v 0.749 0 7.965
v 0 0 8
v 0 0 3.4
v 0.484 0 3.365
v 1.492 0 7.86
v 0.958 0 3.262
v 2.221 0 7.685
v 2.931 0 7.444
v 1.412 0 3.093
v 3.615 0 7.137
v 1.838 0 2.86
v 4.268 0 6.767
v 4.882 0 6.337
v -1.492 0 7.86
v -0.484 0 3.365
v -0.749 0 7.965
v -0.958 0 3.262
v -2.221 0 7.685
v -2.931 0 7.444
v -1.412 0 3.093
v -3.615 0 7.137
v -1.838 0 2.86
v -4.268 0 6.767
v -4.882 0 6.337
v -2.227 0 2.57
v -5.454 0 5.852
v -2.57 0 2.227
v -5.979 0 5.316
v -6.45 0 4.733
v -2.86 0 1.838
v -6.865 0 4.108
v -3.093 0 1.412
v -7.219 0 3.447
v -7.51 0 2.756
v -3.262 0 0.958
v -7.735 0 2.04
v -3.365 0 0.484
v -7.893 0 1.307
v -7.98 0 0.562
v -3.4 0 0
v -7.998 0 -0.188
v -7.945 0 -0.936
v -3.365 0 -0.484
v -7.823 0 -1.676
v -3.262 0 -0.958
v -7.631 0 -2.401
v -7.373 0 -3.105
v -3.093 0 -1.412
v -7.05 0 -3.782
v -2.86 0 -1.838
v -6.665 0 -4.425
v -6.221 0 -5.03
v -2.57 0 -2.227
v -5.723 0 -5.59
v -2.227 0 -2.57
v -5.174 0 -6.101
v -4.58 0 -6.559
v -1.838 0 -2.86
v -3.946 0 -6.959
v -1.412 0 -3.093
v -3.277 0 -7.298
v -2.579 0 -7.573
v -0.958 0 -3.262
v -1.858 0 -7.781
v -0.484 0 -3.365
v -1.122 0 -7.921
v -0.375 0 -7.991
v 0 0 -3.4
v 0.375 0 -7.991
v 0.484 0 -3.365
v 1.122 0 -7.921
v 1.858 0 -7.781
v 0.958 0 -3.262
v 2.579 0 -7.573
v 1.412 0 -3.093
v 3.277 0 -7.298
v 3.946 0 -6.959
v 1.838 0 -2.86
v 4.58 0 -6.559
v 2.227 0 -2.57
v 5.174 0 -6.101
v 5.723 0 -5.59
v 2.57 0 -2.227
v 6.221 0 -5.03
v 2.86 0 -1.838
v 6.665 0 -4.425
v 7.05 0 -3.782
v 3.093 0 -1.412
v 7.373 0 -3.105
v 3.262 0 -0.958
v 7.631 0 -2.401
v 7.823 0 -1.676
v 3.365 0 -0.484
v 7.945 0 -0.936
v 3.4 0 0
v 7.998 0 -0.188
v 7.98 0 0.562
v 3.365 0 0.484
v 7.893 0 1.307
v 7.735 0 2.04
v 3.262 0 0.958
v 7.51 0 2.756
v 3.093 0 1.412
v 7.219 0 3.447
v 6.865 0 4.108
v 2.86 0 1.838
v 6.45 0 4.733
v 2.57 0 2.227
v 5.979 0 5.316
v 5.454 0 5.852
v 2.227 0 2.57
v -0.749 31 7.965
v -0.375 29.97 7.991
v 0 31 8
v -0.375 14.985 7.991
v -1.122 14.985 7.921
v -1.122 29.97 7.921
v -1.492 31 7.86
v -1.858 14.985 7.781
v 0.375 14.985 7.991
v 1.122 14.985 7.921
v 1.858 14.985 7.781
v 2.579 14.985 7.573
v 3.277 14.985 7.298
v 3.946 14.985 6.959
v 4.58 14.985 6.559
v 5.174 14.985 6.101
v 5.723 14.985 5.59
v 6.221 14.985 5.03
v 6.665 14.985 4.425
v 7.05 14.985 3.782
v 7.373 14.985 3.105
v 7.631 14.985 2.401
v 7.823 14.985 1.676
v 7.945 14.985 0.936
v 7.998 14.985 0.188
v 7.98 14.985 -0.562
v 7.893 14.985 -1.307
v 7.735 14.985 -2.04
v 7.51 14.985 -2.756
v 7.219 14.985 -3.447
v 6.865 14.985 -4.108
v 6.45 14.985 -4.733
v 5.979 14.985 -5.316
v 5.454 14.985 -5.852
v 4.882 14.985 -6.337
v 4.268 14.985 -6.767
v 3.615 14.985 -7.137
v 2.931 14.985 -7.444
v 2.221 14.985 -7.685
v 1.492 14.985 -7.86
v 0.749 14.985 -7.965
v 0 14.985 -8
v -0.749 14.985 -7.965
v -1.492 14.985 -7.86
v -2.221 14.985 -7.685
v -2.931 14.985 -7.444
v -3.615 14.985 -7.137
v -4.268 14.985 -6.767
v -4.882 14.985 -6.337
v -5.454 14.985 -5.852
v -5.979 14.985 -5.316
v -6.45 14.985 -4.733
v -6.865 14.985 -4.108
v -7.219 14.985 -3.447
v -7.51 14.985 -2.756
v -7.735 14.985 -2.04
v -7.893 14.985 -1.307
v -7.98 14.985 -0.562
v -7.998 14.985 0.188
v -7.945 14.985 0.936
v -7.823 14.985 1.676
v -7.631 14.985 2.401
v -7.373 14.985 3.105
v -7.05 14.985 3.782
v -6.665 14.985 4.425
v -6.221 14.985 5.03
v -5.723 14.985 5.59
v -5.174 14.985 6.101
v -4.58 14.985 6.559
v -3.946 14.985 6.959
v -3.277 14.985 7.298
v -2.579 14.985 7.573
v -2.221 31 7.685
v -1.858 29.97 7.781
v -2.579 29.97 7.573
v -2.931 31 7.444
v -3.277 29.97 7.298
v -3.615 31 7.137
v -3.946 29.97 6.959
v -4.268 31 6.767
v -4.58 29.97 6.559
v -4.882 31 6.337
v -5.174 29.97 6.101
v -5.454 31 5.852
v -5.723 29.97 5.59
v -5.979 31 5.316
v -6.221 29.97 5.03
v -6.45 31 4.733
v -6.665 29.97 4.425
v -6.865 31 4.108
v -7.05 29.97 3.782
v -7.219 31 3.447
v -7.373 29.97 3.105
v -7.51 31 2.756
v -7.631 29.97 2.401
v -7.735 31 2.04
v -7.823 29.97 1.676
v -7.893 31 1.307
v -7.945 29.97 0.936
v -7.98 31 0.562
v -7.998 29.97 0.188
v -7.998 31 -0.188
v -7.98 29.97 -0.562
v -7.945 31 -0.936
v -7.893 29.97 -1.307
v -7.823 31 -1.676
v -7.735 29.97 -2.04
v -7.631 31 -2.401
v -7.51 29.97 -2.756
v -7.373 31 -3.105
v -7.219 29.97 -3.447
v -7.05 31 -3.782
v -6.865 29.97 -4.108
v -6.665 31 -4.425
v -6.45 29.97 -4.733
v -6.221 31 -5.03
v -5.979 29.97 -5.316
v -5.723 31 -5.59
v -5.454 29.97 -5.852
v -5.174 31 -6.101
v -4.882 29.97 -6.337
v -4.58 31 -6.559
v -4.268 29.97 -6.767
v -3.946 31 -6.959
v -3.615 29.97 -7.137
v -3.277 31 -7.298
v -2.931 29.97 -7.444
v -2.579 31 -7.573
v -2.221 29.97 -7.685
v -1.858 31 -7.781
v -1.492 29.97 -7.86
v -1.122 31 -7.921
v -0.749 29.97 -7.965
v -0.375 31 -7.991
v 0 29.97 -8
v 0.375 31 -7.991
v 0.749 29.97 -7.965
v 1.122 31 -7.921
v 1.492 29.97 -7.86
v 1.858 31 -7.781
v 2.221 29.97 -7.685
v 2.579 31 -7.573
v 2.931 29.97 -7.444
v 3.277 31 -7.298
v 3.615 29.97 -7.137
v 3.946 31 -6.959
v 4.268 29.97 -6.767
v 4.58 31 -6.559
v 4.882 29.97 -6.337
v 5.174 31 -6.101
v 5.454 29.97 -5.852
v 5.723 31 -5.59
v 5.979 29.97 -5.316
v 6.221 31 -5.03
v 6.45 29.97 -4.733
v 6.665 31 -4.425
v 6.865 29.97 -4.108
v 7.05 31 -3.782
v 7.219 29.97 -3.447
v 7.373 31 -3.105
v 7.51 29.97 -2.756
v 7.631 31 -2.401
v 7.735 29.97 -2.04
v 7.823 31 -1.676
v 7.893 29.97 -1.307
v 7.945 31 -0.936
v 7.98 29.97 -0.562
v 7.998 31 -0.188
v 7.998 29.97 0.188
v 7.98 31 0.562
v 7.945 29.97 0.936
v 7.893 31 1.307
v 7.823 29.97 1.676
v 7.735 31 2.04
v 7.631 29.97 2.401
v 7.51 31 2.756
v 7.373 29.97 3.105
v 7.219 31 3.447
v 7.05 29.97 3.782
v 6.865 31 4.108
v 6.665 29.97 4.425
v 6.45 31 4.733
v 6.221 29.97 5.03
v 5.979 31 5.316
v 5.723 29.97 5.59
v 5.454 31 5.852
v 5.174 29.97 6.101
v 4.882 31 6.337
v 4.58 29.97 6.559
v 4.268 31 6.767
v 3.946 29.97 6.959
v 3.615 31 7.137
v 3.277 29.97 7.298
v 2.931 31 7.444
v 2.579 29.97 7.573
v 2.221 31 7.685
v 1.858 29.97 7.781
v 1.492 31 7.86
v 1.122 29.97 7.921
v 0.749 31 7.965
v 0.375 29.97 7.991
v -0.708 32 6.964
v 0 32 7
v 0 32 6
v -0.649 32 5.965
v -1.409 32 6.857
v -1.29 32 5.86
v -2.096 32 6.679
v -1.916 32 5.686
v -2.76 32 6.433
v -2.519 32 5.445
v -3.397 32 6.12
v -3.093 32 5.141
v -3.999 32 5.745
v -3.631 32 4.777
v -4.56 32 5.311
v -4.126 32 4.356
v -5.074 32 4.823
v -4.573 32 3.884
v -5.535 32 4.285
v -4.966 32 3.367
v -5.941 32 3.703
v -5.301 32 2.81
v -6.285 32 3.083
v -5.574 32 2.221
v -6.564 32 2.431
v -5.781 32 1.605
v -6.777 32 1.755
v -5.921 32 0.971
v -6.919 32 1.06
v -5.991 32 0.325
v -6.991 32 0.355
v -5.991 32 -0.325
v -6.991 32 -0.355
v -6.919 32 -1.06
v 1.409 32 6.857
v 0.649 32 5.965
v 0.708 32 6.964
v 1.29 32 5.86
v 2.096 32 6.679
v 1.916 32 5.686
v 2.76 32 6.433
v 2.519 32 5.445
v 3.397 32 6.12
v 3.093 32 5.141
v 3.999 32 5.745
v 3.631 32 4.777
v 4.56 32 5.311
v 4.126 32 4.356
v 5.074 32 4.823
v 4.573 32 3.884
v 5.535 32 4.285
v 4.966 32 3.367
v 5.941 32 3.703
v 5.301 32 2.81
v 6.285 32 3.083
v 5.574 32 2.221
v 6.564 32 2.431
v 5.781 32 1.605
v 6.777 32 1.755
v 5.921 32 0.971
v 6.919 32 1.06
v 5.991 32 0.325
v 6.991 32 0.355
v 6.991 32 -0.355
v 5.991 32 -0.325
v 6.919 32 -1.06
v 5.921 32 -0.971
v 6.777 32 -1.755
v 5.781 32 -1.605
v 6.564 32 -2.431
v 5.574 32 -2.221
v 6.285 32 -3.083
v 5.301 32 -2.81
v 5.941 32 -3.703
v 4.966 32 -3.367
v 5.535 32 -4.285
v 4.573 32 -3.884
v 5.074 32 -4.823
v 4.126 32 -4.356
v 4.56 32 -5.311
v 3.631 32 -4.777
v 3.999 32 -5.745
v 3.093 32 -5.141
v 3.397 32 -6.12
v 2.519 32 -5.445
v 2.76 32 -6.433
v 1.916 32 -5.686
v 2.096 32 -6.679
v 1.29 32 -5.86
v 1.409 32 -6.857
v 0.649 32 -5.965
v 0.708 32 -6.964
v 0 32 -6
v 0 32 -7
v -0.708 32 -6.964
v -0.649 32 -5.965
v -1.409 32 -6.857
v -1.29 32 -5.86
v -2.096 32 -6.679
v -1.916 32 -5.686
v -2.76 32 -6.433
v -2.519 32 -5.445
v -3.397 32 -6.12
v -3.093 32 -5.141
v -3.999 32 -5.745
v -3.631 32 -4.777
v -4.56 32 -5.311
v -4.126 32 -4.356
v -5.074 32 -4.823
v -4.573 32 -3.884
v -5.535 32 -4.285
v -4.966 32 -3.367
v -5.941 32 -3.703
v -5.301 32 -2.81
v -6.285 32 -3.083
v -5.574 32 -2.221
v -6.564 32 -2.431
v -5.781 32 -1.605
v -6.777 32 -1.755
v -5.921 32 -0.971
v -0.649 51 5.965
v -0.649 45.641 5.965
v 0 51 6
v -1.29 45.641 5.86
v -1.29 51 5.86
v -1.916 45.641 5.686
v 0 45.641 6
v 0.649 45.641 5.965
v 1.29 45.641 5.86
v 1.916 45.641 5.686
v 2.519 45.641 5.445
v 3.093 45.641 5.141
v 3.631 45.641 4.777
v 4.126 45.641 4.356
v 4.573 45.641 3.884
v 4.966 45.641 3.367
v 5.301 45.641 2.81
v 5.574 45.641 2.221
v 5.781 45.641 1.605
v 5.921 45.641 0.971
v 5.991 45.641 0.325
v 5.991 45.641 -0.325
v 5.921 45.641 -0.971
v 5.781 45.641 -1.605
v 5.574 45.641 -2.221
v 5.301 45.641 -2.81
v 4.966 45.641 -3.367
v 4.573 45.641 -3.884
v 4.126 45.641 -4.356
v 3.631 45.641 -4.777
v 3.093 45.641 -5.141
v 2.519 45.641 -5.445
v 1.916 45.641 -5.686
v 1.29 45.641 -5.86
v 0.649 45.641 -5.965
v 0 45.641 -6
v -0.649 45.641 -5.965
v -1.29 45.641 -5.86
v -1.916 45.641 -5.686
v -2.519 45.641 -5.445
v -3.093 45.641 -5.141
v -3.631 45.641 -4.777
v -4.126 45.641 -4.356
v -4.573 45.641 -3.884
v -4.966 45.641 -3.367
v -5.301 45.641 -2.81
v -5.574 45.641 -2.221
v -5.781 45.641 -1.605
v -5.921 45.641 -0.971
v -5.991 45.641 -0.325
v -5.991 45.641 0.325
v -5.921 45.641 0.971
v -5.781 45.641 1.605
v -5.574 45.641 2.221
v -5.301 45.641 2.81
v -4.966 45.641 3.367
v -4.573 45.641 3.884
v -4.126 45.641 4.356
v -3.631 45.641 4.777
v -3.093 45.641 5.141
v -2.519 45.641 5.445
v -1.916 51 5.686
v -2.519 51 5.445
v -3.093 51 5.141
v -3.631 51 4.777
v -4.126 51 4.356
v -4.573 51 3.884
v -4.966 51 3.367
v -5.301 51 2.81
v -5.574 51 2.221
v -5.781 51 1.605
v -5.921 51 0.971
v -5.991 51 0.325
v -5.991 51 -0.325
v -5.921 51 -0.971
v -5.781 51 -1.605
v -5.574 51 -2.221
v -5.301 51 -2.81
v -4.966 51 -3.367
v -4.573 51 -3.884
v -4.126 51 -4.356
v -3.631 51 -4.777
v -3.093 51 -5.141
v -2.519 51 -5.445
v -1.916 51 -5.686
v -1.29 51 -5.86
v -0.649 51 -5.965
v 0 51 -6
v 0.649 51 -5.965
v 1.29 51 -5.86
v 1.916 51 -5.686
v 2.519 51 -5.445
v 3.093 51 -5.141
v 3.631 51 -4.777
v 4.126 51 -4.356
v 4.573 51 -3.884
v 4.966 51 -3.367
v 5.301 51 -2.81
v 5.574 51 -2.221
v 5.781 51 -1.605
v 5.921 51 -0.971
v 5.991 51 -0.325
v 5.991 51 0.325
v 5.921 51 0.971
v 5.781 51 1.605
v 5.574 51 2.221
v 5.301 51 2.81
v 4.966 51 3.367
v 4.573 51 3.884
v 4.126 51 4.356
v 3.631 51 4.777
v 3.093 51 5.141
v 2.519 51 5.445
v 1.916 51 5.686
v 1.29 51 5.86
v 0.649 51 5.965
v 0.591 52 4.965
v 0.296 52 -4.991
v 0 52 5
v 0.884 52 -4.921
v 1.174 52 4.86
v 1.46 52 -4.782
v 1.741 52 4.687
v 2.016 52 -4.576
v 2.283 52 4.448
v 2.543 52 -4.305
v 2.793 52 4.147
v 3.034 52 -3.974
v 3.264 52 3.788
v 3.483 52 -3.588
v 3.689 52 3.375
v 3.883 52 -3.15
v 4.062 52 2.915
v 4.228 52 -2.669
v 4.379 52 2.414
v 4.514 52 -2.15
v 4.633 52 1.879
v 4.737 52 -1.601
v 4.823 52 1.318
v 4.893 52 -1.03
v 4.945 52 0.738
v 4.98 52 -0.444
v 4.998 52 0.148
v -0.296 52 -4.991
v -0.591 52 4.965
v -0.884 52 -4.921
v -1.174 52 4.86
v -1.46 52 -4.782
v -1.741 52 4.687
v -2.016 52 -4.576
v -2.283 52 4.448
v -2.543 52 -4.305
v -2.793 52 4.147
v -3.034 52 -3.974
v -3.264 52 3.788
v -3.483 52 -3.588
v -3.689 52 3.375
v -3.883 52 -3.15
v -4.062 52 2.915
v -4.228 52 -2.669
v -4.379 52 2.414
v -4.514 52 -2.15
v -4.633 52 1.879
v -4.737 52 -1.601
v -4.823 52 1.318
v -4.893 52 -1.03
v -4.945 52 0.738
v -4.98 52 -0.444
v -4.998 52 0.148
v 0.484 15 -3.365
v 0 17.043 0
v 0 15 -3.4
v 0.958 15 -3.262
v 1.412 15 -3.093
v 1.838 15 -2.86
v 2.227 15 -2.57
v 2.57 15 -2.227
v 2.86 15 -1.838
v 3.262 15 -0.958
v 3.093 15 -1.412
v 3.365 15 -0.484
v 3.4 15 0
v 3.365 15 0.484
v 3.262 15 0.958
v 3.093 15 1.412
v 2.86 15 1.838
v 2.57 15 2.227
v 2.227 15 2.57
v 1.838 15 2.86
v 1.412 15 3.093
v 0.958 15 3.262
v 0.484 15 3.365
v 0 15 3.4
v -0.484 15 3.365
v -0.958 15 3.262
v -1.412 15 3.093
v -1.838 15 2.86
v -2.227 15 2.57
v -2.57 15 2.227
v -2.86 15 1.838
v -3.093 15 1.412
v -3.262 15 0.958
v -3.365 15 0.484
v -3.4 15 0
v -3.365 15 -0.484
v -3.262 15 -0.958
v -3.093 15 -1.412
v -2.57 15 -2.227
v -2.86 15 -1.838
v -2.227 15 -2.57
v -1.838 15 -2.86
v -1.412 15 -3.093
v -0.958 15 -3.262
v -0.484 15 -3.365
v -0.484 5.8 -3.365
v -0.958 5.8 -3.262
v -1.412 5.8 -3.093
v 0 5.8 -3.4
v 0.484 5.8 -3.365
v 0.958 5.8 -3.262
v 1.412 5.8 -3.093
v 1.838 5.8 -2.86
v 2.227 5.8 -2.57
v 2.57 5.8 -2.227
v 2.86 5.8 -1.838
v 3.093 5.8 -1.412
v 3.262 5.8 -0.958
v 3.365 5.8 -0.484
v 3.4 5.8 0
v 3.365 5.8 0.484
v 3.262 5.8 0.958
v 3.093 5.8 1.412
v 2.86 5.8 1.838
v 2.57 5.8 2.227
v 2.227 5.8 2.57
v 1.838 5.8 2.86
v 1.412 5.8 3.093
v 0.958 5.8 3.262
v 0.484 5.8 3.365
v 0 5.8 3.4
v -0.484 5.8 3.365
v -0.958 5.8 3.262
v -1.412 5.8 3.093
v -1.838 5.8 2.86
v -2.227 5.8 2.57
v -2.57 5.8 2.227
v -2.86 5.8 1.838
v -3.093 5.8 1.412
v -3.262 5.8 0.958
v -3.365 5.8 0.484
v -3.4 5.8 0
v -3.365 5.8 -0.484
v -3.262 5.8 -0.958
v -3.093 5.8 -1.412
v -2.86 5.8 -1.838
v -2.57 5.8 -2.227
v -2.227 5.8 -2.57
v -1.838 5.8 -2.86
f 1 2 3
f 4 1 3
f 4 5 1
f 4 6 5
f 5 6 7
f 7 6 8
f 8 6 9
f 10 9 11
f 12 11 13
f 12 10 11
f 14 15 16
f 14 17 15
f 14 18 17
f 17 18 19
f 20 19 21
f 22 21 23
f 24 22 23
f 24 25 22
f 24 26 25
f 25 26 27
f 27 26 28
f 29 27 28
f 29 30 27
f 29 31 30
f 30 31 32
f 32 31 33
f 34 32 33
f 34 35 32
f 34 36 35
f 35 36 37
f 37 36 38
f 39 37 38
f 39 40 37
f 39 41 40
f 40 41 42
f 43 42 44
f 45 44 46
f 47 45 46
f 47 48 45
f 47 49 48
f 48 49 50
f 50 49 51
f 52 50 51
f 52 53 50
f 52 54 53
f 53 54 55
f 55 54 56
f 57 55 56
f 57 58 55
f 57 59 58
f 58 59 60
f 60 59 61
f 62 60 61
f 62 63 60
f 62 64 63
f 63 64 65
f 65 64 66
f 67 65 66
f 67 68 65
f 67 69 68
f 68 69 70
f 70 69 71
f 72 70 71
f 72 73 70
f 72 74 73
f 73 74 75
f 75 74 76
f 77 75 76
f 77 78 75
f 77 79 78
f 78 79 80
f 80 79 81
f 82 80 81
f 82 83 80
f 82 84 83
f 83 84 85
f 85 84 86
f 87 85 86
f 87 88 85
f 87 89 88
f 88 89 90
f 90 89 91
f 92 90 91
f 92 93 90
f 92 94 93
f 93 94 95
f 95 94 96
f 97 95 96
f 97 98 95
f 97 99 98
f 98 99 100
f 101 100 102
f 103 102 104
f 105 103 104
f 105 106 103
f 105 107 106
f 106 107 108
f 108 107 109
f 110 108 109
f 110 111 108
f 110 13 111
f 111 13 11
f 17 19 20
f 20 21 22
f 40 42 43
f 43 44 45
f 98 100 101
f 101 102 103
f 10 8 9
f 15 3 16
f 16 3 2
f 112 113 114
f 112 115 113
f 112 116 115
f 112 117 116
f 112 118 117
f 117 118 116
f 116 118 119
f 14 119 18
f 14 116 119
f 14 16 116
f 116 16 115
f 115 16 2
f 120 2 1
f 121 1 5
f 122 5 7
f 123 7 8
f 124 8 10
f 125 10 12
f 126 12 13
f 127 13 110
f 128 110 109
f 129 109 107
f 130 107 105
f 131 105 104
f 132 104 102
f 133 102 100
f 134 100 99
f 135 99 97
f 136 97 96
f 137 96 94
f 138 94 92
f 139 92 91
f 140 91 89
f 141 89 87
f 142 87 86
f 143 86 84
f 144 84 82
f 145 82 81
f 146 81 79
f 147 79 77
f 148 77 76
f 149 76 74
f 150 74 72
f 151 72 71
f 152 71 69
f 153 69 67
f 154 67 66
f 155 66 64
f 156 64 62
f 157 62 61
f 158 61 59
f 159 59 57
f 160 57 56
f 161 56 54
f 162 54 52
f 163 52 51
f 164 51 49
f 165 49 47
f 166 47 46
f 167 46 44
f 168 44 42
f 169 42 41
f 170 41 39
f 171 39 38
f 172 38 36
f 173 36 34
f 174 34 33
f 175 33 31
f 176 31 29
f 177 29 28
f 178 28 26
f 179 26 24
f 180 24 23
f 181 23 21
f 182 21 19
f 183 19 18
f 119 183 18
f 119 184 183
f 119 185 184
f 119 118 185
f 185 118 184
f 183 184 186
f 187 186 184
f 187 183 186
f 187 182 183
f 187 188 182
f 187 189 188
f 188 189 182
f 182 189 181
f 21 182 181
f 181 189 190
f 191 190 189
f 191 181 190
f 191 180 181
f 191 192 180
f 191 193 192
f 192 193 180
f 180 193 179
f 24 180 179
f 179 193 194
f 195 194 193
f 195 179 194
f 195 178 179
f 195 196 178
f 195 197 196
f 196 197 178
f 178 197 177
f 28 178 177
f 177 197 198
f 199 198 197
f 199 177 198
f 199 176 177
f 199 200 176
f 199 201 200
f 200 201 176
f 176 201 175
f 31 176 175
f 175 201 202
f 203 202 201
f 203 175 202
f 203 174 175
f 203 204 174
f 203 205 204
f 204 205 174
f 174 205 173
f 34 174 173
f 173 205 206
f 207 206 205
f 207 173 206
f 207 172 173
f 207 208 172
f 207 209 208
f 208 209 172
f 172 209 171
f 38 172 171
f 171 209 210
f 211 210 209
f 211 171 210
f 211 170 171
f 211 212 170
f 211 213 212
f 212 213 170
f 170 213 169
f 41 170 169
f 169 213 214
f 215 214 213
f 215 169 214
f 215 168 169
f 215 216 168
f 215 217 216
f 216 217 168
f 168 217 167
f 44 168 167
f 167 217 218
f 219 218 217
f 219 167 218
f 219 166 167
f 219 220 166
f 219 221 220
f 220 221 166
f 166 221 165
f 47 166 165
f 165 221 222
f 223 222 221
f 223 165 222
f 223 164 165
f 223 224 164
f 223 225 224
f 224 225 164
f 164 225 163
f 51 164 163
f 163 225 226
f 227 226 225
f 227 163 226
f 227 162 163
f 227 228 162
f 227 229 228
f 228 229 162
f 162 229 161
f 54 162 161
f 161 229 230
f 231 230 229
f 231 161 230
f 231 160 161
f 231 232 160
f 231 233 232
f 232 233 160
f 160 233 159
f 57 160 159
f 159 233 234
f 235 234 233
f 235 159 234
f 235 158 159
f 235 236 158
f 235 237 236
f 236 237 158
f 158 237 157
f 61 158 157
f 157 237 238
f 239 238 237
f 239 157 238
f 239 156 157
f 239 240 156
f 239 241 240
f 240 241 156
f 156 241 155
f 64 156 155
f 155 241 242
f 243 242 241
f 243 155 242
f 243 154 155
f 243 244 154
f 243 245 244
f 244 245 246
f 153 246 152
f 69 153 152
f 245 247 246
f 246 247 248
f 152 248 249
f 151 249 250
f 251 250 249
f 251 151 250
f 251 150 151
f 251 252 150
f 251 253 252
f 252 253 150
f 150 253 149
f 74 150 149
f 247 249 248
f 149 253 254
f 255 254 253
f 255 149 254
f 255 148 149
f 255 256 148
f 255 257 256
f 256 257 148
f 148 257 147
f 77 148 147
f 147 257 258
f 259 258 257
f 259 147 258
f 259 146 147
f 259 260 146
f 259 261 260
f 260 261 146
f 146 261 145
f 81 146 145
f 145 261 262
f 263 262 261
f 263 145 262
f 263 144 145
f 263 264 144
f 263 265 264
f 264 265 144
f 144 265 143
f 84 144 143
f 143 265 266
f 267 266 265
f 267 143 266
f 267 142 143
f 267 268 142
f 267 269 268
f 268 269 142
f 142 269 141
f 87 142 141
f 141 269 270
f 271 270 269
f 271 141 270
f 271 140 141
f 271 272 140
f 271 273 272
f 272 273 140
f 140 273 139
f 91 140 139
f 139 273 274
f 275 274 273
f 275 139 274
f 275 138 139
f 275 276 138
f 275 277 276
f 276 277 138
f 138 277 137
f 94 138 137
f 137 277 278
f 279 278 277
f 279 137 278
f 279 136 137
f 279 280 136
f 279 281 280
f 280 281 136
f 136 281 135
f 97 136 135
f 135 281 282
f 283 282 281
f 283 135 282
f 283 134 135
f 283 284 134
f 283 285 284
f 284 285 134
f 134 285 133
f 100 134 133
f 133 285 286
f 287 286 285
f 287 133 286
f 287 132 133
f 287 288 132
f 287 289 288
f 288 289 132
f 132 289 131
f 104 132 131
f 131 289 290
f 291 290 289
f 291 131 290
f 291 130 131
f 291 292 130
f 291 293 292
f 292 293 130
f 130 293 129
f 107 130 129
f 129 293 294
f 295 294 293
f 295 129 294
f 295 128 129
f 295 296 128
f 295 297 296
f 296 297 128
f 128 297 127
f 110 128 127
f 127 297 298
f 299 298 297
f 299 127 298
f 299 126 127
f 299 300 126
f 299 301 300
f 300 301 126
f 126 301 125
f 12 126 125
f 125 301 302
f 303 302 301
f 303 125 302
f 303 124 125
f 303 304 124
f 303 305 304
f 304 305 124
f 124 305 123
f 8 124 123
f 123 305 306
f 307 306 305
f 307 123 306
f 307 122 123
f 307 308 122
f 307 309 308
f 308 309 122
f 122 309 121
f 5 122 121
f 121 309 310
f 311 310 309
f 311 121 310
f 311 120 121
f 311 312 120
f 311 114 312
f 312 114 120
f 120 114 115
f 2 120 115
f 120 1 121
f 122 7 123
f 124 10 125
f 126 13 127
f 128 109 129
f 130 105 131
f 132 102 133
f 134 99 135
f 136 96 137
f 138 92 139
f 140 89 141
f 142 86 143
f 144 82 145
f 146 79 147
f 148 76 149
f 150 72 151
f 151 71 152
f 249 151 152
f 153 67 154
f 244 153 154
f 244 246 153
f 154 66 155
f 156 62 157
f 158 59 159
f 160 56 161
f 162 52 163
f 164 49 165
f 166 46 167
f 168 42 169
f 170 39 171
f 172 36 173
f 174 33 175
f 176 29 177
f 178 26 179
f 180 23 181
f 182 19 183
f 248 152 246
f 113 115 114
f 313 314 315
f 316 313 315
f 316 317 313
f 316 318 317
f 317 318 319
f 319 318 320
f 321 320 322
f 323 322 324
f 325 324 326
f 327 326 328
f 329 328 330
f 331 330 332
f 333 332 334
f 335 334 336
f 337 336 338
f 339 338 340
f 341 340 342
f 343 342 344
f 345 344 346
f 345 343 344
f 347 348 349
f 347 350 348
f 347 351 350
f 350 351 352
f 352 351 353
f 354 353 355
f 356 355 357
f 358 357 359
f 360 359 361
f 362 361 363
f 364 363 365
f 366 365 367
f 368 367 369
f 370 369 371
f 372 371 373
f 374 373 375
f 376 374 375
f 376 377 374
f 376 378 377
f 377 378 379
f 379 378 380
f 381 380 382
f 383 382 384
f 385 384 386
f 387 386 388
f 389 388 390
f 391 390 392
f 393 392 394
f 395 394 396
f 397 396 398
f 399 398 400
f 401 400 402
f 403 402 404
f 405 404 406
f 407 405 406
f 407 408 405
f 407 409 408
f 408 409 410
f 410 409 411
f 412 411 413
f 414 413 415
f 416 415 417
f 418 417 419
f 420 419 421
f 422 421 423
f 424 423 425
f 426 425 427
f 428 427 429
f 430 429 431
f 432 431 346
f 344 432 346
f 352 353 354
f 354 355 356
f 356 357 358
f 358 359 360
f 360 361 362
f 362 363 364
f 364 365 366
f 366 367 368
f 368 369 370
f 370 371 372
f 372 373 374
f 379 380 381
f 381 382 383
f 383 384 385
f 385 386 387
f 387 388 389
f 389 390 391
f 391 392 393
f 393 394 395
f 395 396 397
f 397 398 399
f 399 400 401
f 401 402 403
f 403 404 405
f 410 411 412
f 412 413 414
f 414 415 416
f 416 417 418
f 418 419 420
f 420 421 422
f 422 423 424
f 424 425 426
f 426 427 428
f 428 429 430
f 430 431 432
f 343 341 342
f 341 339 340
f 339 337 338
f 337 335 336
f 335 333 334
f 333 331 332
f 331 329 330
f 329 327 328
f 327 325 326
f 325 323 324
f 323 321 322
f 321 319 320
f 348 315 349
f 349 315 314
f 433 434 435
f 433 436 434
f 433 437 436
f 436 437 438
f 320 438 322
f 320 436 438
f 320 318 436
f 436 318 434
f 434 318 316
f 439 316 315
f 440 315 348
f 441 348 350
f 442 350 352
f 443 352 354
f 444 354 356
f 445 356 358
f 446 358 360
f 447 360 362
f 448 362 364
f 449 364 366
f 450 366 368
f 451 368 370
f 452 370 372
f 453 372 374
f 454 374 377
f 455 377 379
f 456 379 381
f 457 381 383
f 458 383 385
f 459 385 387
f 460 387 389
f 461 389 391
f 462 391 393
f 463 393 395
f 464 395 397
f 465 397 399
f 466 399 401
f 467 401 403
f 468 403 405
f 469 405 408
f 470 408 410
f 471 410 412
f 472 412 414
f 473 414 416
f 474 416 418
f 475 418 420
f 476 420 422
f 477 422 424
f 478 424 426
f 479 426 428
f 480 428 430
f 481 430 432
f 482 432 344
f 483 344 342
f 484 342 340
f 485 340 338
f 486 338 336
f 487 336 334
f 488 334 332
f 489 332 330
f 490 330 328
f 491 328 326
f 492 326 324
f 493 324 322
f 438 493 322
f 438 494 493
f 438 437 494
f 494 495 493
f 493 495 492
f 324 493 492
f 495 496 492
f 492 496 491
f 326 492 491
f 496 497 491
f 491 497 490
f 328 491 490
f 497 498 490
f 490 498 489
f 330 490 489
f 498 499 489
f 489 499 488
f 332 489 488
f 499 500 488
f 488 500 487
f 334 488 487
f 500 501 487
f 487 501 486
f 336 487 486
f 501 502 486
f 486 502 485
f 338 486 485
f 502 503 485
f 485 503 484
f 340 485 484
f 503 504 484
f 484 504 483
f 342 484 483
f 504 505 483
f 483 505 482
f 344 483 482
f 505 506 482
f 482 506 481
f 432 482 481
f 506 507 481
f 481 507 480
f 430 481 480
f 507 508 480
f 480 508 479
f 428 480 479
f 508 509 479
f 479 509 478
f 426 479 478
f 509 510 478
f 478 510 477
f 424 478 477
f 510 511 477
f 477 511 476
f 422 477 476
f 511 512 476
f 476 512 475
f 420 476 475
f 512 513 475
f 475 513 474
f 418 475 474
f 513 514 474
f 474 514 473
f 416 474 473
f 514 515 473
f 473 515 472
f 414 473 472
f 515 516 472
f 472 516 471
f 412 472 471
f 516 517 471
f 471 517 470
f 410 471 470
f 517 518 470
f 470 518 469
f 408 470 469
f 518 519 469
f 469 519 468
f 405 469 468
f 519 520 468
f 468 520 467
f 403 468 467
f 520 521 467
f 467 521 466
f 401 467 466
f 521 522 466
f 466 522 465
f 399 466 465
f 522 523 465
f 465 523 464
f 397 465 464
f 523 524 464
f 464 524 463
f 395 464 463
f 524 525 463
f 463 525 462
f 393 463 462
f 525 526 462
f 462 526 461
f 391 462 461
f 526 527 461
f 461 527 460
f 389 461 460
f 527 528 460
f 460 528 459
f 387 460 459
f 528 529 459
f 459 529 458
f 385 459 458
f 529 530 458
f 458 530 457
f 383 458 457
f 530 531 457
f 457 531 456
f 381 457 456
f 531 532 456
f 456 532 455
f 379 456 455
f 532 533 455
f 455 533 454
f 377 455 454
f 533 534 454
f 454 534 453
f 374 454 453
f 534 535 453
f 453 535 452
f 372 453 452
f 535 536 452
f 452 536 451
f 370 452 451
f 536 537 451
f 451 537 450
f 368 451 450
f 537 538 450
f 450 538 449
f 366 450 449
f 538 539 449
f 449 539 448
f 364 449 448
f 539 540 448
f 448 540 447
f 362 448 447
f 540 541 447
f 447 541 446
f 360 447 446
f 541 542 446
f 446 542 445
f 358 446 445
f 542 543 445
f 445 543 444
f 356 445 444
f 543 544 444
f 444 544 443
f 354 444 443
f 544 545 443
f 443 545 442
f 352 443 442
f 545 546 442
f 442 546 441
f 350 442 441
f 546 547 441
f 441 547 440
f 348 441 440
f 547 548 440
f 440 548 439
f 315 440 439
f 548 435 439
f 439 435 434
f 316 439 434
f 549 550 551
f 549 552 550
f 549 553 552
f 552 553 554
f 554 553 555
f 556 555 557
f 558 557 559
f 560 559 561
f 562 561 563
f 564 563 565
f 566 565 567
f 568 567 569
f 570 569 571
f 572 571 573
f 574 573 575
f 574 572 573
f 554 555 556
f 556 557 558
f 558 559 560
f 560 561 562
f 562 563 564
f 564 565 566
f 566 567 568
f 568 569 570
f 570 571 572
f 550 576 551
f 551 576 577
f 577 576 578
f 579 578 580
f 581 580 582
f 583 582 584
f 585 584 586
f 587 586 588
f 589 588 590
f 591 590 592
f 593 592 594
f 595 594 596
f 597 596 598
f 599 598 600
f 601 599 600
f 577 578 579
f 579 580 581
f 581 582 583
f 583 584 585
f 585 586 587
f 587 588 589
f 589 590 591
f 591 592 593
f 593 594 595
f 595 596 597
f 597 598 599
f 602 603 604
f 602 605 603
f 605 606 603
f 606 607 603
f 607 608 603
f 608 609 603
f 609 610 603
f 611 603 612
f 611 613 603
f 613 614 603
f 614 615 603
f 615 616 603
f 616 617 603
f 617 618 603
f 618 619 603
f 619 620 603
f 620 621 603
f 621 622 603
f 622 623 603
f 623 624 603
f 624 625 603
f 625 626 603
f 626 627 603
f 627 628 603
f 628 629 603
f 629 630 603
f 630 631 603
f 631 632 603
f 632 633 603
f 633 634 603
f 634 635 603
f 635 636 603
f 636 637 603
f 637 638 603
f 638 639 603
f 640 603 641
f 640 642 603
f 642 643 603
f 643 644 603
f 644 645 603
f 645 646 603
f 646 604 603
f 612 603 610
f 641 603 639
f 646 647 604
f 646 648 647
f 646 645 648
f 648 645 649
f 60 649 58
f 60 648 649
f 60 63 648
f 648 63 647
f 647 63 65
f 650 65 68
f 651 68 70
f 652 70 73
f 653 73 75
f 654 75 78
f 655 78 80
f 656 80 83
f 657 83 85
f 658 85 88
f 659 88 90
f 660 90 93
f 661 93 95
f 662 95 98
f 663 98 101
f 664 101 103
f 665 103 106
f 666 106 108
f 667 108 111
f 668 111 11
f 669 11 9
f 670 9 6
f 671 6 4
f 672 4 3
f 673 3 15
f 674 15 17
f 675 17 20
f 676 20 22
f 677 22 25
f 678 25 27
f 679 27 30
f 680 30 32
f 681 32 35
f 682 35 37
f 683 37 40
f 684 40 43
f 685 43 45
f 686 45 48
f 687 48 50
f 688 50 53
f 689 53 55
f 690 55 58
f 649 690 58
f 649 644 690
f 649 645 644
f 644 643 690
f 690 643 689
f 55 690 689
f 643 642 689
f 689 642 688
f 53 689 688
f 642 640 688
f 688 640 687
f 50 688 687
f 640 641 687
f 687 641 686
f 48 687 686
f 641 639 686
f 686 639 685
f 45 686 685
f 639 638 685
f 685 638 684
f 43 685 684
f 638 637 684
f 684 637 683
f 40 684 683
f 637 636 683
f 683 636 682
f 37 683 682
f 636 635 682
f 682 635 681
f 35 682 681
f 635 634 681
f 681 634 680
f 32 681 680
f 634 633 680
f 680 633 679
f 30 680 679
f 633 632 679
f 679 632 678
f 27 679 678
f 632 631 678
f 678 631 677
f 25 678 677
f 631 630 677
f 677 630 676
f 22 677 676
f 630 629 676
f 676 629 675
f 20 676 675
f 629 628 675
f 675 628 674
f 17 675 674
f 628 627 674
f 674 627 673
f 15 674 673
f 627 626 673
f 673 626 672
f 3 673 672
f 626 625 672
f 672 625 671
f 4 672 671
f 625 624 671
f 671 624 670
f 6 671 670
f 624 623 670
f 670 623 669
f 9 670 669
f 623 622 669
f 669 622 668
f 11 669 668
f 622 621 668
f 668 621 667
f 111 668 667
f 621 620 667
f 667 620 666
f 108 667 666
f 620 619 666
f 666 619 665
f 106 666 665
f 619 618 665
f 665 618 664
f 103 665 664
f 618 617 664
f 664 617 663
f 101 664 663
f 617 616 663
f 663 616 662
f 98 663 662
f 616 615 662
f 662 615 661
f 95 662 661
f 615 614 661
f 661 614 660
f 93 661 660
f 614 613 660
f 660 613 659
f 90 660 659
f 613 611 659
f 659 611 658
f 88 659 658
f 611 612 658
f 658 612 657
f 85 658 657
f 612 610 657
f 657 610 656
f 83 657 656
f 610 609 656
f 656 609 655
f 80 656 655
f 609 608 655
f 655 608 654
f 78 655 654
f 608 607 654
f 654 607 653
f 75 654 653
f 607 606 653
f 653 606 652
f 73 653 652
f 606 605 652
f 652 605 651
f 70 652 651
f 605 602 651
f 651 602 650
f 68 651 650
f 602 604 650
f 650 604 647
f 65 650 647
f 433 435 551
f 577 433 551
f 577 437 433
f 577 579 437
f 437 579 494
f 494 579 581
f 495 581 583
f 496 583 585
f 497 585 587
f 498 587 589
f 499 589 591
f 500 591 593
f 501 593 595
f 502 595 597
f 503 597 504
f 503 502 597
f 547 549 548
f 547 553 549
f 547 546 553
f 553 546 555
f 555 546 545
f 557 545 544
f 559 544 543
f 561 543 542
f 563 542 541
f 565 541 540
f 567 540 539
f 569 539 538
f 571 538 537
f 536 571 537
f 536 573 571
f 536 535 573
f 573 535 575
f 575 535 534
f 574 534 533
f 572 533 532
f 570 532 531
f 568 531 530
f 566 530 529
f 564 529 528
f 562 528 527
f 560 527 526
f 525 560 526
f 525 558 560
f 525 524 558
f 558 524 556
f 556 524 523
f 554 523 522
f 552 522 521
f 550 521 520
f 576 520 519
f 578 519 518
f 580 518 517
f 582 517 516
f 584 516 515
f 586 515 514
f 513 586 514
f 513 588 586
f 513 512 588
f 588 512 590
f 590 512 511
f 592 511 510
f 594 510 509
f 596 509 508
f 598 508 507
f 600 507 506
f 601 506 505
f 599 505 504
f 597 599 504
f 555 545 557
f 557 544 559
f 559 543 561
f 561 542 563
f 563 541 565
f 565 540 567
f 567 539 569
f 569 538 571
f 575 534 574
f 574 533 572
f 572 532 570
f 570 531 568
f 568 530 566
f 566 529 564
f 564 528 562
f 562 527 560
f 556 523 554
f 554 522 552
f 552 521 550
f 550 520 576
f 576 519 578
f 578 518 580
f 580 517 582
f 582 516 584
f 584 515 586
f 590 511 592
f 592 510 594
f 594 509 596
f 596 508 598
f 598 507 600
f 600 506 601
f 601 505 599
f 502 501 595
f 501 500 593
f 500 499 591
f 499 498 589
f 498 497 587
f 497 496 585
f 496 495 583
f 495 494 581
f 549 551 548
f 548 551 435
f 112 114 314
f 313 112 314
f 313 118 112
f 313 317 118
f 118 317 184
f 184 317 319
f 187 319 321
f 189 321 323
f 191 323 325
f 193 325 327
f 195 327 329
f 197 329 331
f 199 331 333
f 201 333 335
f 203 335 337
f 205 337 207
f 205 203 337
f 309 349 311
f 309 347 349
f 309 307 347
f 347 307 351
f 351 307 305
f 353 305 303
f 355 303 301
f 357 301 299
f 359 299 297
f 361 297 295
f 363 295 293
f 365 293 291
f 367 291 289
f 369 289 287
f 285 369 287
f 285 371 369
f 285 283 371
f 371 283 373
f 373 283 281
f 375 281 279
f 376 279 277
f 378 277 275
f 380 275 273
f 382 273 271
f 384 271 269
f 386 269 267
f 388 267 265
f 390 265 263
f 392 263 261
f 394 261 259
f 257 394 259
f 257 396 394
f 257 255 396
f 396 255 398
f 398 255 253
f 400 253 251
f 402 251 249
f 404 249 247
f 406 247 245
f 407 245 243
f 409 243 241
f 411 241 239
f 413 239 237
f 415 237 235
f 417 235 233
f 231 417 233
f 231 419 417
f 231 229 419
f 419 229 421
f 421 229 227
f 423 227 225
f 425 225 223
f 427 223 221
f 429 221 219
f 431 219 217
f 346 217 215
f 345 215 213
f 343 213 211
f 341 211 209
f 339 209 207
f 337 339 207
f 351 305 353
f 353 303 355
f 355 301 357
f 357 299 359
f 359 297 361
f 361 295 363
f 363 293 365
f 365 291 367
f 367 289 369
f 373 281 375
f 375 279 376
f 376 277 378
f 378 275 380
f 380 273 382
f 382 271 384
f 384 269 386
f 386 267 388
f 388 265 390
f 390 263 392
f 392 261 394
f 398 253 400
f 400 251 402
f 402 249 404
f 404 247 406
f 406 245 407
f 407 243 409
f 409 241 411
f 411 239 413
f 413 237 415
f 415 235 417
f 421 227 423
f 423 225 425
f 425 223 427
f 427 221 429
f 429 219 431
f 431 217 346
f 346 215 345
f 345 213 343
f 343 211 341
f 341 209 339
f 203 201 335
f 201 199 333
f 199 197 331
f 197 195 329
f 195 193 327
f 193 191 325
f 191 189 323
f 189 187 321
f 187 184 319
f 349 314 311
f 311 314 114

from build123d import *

# Parameters (mm, degrees)
M8_GEWINDEBOHRUNG1_D     = 6.8
M8_GEWINDEBOHRUNG1_DEPTH = 15
M8_GEWINDEBOHRUNG1_TIP   = 2.042926105
FASE1_SIZE               = 1
FASE2_SIZE               = 1


with BuildPart() as part:
    # Skizze1 → Rotation1 (revolve)
    with BuildSketch(Plane.XY):
        Polygon((0, 0), (-8, 0), (-8, 32), (-6, 32), (-6, 52), (0, 52), align=None)
    revolve(axis=Axis((0, 66.923871734, 0), (0, -1, 0)))

    # M8 Gewindebohrung1
    with Locations(Plane(origin=(0, 0, 0), x_dir=(-1, 0, 0), z_dir=(0, -1, 0))):
        with Locations((0, 0)):
            Hole(M8_GEWINDEBOHRUNG1_D / 2, depth=M8_GEWINDEBOHRUNG1_DEPTH)
            with Locations((0, 0, -(M8_GEWINDEBOHRUNG1_DEPTH + M8_GEWINDEBOHRUNG1_TIP / 2))):  # 118° drill point
                Cone(0, M8_GEWINDEBOHRUNG1_D / 2, M8_GEWINDEBOHRUNG1_TIP, mode=Mode.SUBTRACT)

    # Fase1
    fase1_edges = [part.edges().sort_by_distance(p)[0] for p in [
        (6, 52, 0),
    ]]
    chamfer(fase1_edges, length=FASE1_SIZE)

    # Fase2
    fase2_edges = [part.edges().sort_by_distance(p)[0] for p in [
        (8, 32, 0),
    ]]
    chamfer(fase2_edges, length=FASE2_SIZE)


solid = part.part
